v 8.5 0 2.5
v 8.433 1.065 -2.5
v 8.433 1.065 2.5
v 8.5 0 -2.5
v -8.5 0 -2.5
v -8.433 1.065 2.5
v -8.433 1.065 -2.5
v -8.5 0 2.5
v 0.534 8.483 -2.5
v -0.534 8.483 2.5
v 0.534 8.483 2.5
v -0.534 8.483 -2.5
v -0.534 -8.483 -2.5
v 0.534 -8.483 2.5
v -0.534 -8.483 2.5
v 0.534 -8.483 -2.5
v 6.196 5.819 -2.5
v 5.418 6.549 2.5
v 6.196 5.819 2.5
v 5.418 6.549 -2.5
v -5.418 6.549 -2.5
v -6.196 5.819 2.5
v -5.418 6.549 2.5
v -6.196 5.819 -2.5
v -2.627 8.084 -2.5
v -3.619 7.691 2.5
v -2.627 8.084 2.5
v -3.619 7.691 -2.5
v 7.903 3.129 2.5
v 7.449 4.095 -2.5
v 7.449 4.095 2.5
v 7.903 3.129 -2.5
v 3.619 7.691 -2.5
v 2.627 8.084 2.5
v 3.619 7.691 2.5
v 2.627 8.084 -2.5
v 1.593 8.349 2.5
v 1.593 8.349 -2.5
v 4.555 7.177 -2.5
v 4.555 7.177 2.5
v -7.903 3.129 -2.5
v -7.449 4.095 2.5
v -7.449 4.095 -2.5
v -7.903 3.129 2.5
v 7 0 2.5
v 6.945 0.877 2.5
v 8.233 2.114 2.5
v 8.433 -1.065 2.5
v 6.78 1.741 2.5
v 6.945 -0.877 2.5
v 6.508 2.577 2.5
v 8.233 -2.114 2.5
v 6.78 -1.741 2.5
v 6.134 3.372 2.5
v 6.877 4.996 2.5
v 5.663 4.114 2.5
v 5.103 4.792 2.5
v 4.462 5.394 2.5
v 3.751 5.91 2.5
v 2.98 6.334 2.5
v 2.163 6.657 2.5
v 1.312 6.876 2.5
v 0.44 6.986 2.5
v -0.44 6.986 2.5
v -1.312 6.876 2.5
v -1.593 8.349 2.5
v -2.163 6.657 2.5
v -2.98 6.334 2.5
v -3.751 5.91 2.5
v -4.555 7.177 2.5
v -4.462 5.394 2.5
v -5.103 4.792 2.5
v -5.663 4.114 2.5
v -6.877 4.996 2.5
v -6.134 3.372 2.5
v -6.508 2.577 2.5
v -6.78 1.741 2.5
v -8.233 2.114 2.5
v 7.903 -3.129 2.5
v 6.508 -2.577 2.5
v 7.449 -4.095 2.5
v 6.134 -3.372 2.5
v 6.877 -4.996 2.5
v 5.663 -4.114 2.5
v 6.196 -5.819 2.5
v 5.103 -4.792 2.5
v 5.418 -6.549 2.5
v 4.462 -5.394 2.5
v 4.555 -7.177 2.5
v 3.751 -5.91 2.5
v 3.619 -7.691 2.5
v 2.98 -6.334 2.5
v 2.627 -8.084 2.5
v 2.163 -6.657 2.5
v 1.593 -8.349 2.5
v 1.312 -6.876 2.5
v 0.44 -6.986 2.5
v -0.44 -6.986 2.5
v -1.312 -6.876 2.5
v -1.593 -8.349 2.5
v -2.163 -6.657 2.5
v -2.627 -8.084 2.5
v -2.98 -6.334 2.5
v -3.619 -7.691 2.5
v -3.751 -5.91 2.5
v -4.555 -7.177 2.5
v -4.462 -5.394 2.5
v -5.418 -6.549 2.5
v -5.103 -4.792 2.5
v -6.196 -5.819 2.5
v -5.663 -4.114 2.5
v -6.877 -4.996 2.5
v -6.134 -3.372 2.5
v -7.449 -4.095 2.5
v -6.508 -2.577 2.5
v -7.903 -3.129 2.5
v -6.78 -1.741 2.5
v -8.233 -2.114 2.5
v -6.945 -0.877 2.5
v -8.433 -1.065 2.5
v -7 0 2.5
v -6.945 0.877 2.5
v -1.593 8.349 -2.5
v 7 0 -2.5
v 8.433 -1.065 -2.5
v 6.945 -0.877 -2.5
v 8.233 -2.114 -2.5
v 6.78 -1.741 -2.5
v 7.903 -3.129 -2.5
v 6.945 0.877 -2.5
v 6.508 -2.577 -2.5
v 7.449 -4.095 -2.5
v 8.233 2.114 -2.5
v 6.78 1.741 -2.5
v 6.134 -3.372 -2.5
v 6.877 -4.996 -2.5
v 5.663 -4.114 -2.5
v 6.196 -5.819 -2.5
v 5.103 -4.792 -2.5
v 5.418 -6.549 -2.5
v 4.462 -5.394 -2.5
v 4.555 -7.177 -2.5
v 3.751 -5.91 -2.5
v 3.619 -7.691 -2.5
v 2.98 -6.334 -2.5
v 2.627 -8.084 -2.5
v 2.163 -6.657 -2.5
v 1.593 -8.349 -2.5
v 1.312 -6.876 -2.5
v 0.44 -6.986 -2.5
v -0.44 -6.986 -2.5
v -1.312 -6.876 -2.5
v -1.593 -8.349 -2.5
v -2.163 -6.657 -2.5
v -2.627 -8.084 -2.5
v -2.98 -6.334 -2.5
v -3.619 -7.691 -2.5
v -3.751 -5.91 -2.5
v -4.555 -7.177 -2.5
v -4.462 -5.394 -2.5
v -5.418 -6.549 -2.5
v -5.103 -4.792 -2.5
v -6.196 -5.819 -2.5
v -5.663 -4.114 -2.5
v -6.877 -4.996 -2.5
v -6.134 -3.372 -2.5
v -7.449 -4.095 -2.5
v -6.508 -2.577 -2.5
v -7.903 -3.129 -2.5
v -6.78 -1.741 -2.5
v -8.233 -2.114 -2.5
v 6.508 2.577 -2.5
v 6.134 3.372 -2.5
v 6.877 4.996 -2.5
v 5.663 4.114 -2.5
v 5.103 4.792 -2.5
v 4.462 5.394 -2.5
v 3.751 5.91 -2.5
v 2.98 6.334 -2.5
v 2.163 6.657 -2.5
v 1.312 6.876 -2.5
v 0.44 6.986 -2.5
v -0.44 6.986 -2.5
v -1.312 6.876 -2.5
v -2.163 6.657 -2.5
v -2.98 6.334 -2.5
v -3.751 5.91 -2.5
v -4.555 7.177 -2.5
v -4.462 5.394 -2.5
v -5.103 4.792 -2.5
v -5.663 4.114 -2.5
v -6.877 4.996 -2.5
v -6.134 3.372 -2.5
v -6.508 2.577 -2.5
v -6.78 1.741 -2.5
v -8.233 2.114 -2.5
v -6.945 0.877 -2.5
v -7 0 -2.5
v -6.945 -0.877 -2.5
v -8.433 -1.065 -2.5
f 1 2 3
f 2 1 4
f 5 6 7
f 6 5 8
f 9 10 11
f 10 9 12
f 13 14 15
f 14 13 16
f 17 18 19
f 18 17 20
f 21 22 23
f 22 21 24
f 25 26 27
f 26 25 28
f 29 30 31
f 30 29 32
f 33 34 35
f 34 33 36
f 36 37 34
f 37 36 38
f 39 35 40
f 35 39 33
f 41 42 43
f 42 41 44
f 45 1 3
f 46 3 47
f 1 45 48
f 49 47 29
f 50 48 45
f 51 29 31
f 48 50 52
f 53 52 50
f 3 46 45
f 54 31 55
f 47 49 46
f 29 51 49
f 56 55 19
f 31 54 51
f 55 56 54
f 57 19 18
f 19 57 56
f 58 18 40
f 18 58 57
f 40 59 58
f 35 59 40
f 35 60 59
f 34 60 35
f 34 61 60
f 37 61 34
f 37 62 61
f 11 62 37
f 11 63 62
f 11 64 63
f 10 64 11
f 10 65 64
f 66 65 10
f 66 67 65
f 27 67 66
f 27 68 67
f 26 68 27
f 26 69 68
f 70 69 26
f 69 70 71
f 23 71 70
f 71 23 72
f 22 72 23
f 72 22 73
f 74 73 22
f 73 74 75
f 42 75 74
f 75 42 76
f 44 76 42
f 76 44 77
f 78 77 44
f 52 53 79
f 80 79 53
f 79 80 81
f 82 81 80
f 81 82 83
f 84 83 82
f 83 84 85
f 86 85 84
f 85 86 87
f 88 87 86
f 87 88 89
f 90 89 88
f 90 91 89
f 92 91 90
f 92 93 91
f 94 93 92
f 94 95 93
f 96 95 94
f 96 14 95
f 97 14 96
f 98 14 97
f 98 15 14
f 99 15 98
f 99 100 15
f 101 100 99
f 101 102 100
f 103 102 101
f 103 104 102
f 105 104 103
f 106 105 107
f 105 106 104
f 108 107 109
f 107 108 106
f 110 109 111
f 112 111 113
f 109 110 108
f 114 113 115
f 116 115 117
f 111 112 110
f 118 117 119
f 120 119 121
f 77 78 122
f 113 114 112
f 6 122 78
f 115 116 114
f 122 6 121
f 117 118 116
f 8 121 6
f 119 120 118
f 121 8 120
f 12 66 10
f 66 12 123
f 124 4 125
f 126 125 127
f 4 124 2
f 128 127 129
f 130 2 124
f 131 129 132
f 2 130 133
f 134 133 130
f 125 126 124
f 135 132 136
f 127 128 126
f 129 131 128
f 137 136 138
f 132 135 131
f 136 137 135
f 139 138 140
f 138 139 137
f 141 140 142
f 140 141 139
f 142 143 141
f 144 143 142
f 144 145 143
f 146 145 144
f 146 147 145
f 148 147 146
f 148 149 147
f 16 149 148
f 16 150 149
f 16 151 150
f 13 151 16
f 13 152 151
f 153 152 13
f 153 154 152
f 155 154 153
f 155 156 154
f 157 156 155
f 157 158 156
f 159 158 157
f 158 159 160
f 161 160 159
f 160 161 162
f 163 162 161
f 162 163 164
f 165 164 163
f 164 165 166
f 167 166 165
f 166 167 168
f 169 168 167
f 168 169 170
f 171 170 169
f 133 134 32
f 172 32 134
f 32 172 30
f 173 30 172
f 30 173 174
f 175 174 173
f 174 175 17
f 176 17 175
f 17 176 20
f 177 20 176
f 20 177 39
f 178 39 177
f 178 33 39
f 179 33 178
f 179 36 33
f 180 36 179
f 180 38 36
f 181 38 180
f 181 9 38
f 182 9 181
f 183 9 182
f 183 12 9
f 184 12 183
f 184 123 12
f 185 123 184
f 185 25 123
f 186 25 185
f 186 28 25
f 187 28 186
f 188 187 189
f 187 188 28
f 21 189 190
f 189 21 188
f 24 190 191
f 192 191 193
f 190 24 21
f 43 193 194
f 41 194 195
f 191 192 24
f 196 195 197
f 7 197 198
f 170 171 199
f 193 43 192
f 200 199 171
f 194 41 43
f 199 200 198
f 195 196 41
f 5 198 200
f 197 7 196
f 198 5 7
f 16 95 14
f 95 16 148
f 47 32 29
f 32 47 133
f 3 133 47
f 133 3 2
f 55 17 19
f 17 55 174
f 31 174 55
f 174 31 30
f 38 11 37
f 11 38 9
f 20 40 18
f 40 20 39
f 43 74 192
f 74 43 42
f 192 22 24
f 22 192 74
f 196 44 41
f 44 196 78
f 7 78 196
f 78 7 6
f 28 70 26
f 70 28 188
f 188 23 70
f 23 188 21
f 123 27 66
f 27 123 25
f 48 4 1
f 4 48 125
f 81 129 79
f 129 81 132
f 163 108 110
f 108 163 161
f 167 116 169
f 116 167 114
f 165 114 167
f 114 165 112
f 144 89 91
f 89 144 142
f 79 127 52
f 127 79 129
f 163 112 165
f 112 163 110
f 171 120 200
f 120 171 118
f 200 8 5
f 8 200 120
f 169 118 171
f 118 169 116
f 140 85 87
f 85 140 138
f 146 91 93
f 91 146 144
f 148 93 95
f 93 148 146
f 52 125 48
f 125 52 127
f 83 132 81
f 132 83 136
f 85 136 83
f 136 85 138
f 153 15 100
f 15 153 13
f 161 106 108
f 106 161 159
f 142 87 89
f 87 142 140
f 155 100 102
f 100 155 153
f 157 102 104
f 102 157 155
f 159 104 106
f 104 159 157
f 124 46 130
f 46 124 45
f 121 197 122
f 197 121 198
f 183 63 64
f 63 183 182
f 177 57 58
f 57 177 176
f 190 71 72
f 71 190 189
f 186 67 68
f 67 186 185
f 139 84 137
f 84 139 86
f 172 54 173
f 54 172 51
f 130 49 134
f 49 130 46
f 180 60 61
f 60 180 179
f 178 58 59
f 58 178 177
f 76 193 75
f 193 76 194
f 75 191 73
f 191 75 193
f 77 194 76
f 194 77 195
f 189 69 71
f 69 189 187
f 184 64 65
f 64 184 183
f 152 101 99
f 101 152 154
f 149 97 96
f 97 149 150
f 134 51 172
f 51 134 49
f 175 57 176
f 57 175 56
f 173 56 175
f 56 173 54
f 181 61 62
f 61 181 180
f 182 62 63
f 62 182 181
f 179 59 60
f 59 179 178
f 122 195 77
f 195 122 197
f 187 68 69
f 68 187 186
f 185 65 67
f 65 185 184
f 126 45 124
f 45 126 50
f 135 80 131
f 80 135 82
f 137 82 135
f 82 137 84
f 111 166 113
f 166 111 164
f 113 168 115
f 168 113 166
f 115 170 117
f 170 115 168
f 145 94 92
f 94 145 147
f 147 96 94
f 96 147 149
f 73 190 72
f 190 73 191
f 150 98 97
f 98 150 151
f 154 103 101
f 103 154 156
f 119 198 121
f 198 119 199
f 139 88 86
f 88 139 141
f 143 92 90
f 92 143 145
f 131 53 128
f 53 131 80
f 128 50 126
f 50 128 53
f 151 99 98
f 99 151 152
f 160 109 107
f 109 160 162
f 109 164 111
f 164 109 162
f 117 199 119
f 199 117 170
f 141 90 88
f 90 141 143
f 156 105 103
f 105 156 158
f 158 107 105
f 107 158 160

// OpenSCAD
$fn = 50;


difference() {
	union() {
		translate(v = [0, 0, -2.5000000000]) {
			cylinder(h = 5, r = 8.5000000000);
		}
	}
	union() {
		translate(v = [0, 0, -100.0000000000]) {
			cylinder(h = 200, r = 7);
		}
	}
}
